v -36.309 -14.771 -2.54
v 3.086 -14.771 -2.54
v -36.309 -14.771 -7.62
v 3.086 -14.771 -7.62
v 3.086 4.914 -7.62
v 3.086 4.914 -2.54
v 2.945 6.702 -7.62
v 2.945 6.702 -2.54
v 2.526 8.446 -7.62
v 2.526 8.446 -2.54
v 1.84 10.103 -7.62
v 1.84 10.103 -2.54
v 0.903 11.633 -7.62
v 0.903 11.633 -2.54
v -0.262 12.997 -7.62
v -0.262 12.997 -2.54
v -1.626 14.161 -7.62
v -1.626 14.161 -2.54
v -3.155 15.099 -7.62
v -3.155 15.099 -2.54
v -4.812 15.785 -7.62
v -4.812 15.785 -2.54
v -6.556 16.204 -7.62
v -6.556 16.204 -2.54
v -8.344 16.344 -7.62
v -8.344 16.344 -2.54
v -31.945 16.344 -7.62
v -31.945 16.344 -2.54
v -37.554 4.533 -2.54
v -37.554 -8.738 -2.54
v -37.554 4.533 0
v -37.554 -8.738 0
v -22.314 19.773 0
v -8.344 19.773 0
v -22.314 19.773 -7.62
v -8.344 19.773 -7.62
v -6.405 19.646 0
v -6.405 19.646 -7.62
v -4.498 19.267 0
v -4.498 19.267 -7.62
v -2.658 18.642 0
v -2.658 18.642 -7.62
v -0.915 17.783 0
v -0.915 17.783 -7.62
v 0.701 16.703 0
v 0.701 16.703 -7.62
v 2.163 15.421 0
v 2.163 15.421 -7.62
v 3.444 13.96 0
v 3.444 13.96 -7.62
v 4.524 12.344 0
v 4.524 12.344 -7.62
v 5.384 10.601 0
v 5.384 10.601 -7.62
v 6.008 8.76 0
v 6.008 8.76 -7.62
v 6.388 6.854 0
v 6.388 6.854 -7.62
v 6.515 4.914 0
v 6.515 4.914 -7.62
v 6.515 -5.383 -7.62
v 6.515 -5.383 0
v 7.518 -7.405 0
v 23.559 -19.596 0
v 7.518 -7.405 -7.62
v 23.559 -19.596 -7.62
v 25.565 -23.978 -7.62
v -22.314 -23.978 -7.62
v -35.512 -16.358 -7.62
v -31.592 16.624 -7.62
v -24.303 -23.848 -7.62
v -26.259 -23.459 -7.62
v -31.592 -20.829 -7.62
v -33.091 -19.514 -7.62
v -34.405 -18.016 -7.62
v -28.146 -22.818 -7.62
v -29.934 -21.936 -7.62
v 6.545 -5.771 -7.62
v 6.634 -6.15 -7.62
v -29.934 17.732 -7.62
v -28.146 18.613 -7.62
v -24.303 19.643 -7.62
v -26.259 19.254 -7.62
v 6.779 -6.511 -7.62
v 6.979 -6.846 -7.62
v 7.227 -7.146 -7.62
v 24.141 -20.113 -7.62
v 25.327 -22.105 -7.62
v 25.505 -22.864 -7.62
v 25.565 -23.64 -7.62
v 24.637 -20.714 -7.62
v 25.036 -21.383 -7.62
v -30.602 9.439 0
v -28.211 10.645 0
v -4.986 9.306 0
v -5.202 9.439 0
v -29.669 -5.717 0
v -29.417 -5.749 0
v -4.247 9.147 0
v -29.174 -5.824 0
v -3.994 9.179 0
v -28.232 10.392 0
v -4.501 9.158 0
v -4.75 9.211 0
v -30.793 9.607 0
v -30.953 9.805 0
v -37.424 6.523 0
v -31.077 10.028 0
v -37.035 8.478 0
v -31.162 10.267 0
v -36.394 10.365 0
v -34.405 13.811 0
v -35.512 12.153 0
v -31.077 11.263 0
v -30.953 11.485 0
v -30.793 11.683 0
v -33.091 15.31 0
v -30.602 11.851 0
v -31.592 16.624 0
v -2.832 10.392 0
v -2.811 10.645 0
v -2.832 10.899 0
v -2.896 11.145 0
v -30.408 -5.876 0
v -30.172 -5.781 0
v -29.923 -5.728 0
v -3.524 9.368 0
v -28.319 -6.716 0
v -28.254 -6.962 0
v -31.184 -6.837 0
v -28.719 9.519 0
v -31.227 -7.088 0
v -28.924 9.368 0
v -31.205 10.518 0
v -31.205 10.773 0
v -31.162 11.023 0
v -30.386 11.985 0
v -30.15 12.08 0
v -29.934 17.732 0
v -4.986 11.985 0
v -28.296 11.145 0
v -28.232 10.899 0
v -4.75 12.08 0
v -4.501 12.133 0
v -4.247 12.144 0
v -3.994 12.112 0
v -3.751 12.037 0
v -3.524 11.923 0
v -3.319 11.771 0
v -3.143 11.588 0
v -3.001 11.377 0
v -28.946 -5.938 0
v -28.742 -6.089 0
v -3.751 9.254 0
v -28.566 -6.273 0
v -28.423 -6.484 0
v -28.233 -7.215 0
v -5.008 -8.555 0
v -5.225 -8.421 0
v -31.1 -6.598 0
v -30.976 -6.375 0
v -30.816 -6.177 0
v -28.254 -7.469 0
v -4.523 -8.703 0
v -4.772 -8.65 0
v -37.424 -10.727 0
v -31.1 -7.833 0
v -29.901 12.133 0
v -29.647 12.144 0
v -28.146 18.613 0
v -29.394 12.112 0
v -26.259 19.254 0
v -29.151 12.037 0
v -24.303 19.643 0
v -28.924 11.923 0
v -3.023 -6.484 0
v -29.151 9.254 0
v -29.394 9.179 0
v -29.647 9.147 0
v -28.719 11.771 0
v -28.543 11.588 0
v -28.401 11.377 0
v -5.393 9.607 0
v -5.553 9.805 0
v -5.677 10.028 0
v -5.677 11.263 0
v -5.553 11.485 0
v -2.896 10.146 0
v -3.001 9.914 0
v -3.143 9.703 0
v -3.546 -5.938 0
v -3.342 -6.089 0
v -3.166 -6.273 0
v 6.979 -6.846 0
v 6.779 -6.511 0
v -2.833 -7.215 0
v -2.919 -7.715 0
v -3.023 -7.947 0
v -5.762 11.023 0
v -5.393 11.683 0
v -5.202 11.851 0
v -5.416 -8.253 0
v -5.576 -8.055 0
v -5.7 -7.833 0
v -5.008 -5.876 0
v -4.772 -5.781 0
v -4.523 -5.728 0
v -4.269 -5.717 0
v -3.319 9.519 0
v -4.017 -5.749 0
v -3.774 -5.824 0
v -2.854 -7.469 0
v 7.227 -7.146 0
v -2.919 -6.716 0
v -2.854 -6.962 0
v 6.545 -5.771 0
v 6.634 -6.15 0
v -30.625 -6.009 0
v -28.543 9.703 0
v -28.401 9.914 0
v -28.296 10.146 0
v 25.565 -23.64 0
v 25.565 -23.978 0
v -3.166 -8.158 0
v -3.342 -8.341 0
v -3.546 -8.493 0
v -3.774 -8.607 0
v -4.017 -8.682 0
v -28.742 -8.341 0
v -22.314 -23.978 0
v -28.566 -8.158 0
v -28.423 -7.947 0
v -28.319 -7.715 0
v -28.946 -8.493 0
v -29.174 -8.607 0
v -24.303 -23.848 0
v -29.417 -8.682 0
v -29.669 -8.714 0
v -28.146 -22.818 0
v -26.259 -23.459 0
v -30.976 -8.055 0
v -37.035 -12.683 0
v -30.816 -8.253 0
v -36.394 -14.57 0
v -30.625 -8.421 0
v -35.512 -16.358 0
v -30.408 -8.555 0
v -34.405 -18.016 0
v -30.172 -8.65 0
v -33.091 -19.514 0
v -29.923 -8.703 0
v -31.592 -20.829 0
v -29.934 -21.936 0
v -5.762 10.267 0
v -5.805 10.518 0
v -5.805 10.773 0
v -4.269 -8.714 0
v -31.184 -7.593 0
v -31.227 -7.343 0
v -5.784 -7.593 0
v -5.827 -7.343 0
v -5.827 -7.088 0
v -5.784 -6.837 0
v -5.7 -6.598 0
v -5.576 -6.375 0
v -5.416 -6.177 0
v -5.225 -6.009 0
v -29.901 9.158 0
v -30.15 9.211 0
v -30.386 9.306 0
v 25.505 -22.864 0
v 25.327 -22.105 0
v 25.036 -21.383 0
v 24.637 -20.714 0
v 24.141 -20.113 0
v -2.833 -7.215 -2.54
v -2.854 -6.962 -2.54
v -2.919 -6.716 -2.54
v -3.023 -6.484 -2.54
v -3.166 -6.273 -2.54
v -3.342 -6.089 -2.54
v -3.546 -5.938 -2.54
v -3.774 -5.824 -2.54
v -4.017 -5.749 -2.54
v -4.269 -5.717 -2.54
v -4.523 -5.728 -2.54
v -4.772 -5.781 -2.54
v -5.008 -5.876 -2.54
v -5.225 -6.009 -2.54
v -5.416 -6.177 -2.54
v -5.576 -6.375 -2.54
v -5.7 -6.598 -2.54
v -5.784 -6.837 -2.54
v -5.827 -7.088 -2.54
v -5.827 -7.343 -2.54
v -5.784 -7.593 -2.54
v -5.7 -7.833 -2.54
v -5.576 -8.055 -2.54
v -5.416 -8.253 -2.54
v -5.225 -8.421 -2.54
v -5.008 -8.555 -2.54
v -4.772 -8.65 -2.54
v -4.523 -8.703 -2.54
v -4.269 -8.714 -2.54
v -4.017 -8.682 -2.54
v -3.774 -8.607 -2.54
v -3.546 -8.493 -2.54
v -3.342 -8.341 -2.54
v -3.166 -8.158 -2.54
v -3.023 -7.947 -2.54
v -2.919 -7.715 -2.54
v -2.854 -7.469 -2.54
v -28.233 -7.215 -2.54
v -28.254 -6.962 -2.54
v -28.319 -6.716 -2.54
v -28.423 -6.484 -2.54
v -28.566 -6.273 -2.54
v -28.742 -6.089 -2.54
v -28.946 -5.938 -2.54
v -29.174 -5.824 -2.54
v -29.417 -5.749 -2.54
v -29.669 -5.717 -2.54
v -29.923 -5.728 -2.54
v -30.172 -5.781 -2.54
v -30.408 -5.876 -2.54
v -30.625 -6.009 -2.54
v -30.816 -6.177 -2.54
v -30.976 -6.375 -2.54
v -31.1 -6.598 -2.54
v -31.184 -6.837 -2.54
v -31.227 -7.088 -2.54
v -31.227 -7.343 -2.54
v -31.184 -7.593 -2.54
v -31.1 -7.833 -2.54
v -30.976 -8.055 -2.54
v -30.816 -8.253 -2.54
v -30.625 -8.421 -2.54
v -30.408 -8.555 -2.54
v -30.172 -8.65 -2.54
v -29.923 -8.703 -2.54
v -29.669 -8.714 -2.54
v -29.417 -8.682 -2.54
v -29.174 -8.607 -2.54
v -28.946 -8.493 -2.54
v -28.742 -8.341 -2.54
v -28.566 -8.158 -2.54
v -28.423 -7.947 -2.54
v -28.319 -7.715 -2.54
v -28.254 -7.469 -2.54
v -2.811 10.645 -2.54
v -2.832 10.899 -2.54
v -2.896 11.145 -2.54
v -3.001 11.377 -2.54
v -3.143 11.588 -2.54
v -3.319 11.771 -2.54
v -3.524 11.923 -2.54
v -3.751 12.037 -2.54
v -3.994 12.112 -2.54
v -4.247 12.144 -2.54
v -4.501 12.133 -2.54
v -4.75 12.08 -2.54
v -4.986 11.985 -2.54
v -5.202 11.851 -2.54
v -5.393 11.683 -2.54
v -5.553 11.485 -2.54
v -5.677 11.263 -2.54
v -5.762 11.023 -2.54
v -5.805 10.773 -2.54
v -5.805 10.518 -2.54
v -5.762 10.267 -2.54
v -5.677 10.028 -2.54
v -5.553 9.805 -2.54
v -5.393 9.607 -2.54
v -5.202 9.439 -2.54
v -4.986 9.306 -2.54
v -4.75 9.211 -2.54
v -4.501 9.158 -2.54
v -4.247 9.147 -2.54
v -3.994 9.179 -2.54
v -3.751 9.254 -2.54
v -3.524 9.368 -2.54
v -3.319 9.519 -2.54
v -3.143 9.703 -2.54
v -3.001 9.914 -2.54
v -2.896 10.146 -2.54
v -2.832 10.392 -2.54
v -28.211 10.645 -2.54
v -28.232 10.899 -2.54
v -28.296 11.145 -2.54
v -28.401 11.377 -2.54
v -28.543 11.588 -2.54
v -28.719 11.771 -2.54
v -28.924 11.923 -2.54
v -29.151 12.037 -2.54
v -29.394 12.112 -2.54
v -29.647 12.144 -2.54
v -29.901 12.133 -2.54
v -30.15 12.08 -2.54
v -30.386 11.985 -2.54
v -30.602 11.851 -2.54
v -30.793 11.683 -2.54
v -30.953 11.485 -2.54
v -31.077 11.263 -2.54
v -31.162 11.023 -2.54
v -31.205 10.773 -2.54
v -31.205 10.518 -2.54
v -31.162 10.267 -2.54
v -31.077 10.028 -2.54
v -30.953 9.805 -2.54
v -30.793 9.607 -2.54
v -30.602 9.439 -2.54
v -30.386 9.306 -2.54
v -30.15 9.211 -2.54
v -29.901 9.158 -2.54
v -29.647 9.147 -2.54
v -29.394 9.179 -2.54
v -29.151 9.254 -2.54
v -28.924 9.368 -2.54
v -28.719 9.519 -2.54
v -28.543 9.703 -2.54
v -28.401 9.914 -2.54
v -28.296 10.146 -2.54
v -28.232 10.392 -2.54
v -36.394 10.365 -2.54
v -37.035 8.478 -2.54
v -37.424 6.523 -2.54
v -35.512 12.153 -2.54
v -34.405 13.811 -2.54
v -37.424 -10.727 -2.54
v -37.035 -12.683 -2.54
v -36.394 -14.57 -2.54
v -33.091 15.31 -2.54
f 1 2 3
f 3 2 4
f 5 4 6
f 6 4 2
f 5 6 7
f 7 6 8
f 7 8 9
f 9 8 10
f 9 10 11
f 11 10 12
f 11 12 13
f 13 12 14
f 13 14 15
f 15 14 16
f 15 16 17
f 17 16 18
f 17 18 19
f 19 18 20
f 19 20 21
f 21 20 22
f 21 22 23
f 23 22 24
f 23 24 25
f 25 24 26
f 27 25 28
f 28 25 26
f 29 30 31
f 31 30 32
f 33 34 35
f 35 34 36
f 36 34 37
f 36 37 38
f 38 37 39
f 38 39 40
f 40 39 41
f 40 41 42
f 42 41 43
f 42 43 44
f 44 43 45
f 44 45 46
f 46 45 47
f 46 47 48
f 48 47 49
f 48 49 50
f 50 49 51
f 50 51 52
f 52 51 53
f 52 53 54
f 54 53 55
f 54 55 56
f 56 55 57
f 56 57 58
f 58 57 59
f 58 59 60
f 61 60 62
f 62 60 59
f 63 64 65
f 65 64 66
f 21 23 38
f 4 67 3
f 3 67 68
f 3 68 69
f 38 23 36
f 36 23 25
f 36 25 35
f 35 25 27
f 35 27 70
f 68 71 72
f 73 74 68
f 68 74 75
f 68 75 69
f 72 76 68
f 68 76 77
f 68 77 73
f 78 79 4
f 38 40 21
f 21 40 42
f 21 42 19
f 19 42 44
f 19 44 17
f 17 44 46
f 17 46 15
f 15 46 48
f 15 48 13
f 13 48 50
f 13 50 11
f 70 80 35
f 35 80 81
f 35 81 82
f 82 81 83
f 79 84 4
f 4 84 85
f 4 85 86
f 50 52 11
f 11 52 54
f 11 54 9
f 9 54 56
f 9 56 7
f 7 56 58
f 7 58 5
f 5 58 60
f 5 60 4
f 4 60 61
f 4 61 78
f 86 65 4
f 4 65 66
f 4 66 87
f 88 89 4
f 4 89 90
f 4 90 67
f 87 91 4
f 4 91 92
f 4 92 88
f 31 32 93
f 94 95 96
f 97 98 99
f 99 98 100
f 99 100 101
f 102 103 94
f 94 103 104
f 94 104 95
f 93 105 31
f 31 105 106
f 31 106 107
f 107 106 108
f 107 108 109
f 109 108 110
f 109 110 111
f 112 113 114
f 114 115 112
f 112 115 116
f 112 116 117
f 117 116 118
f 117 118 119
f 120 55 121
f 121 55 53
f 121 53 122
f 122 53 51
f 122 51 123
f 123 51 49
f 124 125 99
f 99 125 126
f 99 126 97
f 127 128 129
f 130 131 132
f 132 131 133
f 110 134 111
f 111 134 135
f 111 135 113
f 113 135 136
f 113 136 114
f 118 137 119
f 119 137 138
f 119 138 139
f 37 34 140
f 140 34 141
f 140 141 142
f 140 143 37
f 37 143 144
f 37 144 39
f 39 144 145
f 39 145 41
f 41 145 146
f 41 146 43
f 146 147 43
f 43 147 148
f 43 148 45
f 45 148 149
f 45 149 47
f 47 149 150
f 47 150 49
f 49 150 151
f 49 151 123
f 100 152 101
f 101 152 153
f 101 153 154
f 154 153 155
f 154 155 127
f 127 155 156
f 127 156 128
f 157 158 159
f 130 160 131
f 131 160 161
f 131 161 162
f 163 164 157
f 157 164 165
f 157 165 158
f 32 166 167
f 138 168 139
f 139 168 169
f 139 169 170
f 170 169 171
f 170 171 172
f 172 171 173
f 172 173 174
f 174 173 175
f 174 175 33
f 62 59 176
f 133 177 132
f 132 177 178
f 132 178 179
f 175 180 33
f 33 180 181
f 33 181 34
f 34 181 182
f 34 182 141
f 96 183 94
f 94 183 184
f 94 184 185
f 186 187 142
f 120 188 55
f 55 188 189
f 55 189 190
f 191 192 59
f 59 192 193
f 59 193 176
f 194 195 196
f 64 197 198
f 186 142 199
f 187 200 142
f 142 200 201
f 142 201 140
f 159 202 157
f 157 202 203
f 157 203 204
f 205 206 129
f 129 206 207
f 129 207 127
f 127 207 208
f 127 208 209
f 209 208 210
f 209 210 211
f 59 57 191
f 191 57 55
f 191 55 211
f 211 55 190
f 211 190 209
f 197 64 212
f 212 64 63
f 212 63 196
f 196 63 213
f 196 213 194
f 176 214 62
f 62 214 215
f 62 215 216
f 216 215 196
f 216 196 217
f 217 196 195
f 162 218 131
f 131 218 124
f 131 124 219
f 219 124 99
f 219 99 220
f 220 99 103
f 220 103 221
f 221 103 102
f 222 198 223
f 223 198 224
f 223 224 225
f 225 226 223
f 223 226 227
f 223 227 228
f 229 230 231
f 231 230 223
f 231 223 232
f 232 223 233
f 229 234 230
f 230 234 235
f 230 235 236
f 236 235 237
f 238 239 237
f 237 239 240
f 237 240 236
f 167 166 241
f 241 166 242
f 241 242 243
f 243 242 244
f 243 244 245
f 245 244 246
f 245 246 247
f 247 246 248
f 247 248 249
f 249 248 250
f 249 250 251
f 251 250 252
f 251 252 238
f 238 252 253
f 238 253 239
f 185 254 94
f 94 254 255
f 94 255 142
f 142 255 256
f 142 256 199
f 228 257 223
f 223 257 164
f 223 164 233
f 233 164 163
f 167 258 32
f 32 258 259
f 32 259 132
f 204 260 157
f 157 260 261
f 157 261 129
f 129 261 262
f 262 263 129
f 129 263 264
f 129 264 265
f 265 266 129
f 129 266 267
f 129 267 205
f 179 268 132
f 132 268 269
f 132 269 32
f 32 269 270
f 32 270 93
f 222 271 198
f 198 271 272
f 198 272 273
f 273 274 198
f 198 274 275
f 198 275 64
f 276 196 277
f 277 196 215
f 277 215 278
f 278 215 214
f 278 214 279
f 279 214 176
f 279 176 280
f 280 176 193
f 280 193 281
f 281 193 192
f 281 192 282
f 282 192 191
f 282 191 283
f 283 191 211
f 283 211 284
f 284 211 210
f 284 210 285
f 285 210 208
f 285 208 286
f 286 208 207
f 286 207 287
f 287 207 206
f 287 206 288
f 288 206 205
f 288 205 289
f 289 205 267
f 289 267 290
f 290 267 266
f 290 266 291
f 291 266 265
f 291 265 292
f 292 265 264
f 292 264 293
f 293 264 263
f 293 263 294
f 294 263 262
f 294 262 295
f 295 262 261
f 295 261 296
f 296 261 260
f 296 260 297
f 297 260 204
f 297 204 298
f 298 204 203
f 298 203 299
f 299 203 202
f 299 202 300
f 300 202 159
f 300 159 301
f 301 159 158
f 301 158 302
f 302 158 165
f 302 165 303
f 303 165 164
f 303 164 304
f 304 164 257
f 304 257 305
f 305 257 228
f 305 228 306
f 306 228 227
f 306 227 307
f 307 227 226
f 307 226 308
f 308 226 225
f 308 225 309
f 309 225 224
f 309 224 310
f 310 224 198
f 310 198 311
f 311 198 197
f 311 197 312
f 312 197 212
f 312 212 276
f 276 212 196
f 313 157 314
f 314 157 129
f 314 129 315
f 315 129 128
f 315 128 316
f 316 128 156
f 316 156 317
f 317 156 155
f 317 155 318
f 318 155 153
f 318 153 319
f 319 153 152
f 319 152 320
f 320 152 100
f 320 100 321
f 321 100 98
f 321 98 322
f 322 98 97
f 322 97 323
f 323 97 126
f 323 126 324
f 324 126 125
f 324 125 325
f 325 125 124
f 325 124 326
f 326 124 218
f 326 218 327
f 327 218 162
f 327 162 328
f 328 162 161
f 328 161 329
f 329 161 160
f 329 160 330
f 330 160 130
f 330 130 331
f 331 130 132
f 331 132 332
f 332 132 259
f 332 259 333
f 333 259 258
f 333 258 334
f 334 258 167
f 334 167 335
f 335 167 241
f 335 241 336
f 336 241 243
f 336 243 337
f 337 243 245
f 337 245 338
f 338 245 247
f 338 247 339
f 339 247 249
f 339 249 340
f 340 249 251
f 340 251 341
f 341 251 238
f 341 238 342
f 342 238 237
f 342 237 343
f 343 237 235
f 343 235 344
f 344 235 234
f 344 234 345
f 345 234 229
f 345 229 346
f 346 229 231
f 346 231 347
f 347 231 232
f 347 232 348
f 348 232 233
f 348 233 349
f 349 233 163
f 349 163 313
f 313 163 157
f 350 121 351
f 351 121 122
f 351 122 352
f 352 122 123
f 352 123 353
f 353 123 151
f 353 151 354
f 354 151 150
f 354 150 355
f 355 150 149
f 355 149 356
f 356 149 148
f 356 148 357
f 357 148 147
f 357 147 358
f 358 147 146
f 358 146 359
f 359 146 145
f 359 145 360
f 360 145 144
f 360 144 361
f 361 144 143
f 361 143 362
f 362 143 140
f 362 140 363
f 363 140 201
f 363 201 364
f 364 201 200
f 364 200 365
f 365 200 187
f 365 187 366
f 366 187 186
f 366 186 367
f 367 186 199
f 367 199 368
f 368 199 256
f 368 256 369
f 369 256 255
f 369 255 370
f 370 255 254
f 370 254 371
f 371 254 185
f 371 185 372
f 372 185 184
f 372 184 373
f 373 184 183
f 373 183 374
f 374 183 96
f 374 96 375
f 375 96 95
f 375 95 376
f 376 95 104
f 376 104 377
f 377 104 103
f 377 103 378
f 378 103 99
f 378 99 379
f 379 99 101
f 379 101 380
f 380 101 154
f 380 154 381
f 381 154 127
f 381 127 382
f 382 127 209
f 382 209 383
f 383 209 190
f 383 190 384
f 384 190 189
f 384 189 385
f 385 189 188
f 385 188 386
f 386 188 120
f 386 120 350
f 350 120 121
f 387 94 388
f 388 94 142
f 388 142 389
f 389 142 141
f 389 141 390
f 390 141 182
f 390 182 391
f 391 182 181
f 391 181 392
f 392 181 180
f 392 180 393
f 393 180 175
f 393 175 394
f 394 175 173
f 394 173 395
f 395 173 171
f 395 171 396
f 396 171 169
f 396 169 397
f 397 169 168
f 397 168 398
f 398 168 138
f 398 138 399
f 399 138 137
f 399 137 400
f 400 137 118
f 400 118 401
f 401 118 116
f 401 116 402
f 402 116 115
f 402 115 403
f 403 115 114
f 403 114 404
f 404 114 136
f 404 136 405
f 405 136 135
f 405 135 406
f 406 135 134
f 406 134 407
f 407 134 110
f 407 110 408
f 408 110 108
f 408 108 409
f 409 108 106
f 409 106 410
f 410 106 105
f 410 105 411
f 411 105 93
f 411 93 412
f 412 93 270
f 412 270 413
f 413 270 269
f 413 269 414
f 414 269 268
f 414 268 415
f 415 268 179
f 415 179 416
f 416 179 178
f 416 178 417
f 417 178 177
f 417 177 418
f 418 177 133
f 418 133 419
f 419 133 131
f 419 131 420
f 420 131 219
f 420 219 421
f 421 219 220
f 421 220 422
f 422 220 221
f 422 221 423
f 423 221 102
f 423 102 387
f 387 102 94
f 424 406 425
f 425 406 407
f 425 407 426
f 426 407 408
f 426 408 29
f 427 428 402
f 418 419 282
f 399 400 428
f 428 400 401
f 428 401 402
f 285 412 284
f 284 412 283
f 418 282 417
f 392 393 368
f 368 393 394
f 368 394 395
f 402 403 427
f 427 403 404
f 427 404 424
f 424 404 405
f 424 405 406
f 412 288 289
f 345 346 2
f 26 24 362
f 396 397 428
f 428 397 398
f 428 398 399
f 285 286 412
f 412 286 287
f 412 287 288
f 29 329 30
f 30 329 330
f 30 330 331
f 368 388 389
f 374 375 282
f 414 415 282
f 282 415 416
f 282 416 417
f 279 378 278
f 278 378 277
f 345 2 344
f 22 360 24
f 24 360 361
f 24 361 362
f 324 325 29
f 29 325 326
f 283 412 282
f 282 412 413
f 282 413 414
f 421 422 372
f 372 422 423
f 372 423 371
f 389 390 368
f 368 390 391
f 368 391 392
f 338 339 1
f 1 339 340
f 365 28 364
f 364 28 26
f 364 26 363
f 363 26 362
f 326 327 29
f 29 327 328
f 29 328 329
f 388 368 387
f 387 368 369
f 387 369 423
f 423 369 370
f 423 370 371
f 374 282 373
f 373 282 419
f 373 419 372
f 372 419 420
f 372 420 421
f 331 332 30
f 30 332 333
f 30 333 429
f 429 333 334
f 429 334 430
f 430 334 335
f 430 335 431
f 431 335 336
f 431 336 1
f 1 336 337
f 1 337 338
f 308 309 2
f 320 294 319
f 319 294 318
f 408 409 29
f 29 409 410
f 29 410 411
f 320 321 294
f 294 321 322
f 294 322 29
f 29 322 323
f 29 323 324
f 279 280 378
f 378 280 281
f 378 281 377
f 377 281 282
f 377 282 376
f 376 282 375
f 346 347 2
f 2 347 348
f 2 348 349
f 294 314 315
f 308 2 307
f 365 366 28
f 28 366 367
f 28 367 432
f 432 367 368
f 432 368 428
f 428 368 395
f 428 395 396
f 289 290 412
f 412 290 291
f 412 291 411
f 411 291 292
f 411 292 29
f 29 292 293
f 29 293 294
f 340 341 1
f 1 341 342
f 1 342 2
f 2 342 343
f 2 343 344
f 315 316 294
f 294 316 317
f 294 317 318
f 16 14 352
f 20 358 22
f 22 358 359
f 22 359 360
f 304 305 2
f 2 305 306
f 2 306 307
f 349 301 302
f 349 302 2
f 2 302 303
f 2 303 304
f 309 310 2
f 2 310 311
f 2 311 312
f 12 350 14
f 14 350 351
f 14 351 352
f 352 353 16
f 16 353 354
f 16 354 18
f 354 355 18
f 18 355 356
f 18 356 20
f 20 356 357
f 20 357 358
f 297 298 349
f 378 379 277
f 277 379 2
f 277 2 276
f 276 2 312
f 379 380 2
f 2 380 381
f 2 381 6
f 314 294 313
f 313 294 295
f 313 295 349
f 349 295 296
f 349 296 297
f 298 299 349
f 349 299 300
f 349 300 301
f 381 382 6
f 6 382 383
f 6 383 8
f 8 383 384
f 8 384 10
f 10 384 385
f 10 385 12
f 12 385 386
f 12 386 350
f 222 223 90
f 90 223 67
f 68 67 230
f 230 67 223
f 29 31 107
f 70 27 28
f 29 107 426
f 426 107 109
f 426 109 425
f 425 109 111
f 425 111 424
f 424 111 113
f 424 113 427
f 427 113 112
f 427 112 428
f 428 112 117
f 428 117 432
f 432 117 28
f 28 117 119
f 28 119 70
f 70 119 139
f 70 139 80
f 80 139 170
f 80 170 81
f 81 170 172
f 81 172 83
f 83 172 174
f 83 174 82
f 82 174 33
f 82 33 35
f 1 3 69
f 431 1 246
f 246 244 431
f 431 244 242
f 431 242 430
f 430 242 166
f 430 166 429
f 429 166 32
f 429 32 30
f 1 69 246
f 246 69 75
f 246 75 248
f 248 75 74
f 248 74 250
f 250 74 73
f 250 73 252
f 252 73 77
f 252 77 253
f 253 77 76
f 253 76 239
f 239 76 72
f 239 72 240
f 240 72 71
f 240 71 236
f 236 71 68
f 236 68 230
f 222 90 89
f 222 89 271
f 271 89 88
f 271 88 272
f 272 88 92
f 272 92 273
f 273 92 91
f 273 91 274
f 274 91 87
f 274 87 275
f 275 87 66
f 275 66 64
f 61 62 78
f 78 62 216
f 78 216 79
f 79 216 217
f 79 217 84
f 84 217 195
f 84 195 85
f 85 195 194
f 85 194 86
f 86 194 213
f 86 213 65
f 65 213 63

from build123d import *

# Parameters (mm, degrees)
BOSS_EXTRUDE1_DEPTH             = 7.62
SKETCH1_3_R                     = 1.5
BOSS_EXTRUDE2_DEPTH             = 2.54
SKETCH2_W                       = 63.119
SKETCH2_H                       = 7.62
BOSS_EXTRUDE3_DEPTH             = 2.54
BOSS_EXTRUDE3_DIRECTION_2_REACH = 58.274
FILLET1_R                       = 15.24
FILLET2_R                       = 5.08
FILLET3_R                       = 2.54


with BuildPart() as part:
    # Sketch1 → Boss-Extrude1 (new body)
    with BuildSketch(Plane.XY):
        with BuildLine():
            Line((-37.554226409, 19.773329444), (-37.554226409, 16.344329444))
            Line((-37.554226409, 16.344329444), (-8.344226409, 16.344329444))
            ThreePointArc((-8.344226409, 16.344329444), (-0.261995901, 12.996559953), (3.085773591, 4.914329444))
            Line((3.085773591, 4.914329444), (3.085773591, -14.770670556))
            Line((3.085773591, -14.770670556), (-37.554226409, -14.770670556))
            Line((-37.554226409, -14.770670556), (-37.554226409, -21.438170556))
            Line((-37.554226409, -21.438170556), (6.514773591, -21.438170556))
            Line((6.514773591, -21.438170556), (25.564773591, -21.120670556))
            Line((25.564773591, -21.120670556), (6.514773591, -6.642670556))
            Line((6.514773591, -6.642670556), (6.514773591, 4.914329444))
            ThreePointArc((6.514773591, 4.914329444), (2.162673252, 15.421229106), (-8.344226409, 19.773329444))
            Line((-8.344226409, 19.773329444), (-37.554226409, 19.773329444))
        make_face()
    extrude(amount=-BOSS_EXTRUDE1_DEPTH)

    # Sketch1<3> → Boss-Extrude2 (add)
    with BuildSketch(Plane.XY):
        with BuildLine():
            Line((-8.344226409, 16.344329444), (-37.554226409, 16.344329444))
            Line((-37.554226409, 16.344329444), (-37.554226409, -14.770670556))
            Line((-37.554226409, -14.770670556), (3.085773591, -14.770670556))
            Line((3.085773591, -14.770670556), (3.085773591, 4.914329444))
            ThreePointArc((3.085773591, 4.914329444), (-0.261995901, 12.996559953), (-8.344226409, 16.344329444))
        make_face()
        with Locations((-29.732882342, -7.215397763)):
            Circle(SKETCH1_3_R, mode=Mode.SUBTRACT)
        with Locations((-4.332882342, -7.215397763)):
            Circle(SKETCH1_3_R, mode=Mode.SUBTRACT)
        with Locations((-29.710505244, 10.645398587)):
            Circle(SKETCH1_3_R, mode=Mode.SUBTRACT)
        with Locations((-4.310505244, 10.645398587)):
            Circle(SKETCH1_3_R, mode=Mode.SUBTRACT)
    extrude(amount=-BOSS_EXTRUDE2_DEPTH)

    # Sketch2 → Boss-Extrude3 (add)
    with BuildSketch(Plane.XZ.offset(21.438170556)):
        with Locations((-5.994726409, -3.81)):
            Rectangle(SKETCH2_W, SKETCH2_H)
    extrude(amount=BOSS_EXTRUDE3_DEPTH)

    # Boss-Extrude3 direction 2: up to this face of the body (flat: up to its plane)
    boss_extrude3_direction_2_end = Plane(part.part.faces().sort_by_distance((16.039773591, -21.279420556, -3.81))[0])
    # Sketch2 → Boss-Extrude3 direction 2 (add, up to the picked face)
    with BuildSketch(Plane.XZ.offset(21.438170556), mode=Mode.PRIVATE) as boss_extrude3_direction_2_sk1:
        with Locations((-5.994726409, -3.81)):
            Rectangle(SKETCH2_W, SKETCH2_H)
    boss_extrude3_direction_2_tool1 = split(extrude(boss_extrude3_direction_2_sk1.sketch, amount=-BOSS_EXTRUDE3_DIRECTION_2_REACH, mode=Mode.PRIVATE), bisect_by=boss_extrude3_direction_2_end, keep=Keep.BOTH, mode=Mode.PRIVATE)
    add(boss_extrude3_direction_2_tool1.solids().sort_by(Axis((-5.994726, -21.438171, -3.81), (0, 1, 0)))[0])

    # Fillet1
    fillet1_edges = [part.edges().sort_by_distance(p)[0] for p in [
        (-37.554226409, 19.773329444, -3.81),
        (-37.554226409, -23.978170556, -3.81),
    ]]
    fillet(fillet1_edges, radius=FILLET1_R)

    # Fillet2
    fillet2_edges = [part.edges().sort_by_distance(p)[0] for p in [
        (25.564773591, -21.120670556, -3.81),
    ]]
    fillet(fillet2_edges, radius=FILLET2_R)

    # Fillet3
    fillet3_edges = [part.edges().sort_by_distance(p)[0] for p in [
        (6.514773591, -6.642670556, -3.81),
    ]]
    fillet(fillet3_edges, radius=FILLET3_R)


solid = part.part
